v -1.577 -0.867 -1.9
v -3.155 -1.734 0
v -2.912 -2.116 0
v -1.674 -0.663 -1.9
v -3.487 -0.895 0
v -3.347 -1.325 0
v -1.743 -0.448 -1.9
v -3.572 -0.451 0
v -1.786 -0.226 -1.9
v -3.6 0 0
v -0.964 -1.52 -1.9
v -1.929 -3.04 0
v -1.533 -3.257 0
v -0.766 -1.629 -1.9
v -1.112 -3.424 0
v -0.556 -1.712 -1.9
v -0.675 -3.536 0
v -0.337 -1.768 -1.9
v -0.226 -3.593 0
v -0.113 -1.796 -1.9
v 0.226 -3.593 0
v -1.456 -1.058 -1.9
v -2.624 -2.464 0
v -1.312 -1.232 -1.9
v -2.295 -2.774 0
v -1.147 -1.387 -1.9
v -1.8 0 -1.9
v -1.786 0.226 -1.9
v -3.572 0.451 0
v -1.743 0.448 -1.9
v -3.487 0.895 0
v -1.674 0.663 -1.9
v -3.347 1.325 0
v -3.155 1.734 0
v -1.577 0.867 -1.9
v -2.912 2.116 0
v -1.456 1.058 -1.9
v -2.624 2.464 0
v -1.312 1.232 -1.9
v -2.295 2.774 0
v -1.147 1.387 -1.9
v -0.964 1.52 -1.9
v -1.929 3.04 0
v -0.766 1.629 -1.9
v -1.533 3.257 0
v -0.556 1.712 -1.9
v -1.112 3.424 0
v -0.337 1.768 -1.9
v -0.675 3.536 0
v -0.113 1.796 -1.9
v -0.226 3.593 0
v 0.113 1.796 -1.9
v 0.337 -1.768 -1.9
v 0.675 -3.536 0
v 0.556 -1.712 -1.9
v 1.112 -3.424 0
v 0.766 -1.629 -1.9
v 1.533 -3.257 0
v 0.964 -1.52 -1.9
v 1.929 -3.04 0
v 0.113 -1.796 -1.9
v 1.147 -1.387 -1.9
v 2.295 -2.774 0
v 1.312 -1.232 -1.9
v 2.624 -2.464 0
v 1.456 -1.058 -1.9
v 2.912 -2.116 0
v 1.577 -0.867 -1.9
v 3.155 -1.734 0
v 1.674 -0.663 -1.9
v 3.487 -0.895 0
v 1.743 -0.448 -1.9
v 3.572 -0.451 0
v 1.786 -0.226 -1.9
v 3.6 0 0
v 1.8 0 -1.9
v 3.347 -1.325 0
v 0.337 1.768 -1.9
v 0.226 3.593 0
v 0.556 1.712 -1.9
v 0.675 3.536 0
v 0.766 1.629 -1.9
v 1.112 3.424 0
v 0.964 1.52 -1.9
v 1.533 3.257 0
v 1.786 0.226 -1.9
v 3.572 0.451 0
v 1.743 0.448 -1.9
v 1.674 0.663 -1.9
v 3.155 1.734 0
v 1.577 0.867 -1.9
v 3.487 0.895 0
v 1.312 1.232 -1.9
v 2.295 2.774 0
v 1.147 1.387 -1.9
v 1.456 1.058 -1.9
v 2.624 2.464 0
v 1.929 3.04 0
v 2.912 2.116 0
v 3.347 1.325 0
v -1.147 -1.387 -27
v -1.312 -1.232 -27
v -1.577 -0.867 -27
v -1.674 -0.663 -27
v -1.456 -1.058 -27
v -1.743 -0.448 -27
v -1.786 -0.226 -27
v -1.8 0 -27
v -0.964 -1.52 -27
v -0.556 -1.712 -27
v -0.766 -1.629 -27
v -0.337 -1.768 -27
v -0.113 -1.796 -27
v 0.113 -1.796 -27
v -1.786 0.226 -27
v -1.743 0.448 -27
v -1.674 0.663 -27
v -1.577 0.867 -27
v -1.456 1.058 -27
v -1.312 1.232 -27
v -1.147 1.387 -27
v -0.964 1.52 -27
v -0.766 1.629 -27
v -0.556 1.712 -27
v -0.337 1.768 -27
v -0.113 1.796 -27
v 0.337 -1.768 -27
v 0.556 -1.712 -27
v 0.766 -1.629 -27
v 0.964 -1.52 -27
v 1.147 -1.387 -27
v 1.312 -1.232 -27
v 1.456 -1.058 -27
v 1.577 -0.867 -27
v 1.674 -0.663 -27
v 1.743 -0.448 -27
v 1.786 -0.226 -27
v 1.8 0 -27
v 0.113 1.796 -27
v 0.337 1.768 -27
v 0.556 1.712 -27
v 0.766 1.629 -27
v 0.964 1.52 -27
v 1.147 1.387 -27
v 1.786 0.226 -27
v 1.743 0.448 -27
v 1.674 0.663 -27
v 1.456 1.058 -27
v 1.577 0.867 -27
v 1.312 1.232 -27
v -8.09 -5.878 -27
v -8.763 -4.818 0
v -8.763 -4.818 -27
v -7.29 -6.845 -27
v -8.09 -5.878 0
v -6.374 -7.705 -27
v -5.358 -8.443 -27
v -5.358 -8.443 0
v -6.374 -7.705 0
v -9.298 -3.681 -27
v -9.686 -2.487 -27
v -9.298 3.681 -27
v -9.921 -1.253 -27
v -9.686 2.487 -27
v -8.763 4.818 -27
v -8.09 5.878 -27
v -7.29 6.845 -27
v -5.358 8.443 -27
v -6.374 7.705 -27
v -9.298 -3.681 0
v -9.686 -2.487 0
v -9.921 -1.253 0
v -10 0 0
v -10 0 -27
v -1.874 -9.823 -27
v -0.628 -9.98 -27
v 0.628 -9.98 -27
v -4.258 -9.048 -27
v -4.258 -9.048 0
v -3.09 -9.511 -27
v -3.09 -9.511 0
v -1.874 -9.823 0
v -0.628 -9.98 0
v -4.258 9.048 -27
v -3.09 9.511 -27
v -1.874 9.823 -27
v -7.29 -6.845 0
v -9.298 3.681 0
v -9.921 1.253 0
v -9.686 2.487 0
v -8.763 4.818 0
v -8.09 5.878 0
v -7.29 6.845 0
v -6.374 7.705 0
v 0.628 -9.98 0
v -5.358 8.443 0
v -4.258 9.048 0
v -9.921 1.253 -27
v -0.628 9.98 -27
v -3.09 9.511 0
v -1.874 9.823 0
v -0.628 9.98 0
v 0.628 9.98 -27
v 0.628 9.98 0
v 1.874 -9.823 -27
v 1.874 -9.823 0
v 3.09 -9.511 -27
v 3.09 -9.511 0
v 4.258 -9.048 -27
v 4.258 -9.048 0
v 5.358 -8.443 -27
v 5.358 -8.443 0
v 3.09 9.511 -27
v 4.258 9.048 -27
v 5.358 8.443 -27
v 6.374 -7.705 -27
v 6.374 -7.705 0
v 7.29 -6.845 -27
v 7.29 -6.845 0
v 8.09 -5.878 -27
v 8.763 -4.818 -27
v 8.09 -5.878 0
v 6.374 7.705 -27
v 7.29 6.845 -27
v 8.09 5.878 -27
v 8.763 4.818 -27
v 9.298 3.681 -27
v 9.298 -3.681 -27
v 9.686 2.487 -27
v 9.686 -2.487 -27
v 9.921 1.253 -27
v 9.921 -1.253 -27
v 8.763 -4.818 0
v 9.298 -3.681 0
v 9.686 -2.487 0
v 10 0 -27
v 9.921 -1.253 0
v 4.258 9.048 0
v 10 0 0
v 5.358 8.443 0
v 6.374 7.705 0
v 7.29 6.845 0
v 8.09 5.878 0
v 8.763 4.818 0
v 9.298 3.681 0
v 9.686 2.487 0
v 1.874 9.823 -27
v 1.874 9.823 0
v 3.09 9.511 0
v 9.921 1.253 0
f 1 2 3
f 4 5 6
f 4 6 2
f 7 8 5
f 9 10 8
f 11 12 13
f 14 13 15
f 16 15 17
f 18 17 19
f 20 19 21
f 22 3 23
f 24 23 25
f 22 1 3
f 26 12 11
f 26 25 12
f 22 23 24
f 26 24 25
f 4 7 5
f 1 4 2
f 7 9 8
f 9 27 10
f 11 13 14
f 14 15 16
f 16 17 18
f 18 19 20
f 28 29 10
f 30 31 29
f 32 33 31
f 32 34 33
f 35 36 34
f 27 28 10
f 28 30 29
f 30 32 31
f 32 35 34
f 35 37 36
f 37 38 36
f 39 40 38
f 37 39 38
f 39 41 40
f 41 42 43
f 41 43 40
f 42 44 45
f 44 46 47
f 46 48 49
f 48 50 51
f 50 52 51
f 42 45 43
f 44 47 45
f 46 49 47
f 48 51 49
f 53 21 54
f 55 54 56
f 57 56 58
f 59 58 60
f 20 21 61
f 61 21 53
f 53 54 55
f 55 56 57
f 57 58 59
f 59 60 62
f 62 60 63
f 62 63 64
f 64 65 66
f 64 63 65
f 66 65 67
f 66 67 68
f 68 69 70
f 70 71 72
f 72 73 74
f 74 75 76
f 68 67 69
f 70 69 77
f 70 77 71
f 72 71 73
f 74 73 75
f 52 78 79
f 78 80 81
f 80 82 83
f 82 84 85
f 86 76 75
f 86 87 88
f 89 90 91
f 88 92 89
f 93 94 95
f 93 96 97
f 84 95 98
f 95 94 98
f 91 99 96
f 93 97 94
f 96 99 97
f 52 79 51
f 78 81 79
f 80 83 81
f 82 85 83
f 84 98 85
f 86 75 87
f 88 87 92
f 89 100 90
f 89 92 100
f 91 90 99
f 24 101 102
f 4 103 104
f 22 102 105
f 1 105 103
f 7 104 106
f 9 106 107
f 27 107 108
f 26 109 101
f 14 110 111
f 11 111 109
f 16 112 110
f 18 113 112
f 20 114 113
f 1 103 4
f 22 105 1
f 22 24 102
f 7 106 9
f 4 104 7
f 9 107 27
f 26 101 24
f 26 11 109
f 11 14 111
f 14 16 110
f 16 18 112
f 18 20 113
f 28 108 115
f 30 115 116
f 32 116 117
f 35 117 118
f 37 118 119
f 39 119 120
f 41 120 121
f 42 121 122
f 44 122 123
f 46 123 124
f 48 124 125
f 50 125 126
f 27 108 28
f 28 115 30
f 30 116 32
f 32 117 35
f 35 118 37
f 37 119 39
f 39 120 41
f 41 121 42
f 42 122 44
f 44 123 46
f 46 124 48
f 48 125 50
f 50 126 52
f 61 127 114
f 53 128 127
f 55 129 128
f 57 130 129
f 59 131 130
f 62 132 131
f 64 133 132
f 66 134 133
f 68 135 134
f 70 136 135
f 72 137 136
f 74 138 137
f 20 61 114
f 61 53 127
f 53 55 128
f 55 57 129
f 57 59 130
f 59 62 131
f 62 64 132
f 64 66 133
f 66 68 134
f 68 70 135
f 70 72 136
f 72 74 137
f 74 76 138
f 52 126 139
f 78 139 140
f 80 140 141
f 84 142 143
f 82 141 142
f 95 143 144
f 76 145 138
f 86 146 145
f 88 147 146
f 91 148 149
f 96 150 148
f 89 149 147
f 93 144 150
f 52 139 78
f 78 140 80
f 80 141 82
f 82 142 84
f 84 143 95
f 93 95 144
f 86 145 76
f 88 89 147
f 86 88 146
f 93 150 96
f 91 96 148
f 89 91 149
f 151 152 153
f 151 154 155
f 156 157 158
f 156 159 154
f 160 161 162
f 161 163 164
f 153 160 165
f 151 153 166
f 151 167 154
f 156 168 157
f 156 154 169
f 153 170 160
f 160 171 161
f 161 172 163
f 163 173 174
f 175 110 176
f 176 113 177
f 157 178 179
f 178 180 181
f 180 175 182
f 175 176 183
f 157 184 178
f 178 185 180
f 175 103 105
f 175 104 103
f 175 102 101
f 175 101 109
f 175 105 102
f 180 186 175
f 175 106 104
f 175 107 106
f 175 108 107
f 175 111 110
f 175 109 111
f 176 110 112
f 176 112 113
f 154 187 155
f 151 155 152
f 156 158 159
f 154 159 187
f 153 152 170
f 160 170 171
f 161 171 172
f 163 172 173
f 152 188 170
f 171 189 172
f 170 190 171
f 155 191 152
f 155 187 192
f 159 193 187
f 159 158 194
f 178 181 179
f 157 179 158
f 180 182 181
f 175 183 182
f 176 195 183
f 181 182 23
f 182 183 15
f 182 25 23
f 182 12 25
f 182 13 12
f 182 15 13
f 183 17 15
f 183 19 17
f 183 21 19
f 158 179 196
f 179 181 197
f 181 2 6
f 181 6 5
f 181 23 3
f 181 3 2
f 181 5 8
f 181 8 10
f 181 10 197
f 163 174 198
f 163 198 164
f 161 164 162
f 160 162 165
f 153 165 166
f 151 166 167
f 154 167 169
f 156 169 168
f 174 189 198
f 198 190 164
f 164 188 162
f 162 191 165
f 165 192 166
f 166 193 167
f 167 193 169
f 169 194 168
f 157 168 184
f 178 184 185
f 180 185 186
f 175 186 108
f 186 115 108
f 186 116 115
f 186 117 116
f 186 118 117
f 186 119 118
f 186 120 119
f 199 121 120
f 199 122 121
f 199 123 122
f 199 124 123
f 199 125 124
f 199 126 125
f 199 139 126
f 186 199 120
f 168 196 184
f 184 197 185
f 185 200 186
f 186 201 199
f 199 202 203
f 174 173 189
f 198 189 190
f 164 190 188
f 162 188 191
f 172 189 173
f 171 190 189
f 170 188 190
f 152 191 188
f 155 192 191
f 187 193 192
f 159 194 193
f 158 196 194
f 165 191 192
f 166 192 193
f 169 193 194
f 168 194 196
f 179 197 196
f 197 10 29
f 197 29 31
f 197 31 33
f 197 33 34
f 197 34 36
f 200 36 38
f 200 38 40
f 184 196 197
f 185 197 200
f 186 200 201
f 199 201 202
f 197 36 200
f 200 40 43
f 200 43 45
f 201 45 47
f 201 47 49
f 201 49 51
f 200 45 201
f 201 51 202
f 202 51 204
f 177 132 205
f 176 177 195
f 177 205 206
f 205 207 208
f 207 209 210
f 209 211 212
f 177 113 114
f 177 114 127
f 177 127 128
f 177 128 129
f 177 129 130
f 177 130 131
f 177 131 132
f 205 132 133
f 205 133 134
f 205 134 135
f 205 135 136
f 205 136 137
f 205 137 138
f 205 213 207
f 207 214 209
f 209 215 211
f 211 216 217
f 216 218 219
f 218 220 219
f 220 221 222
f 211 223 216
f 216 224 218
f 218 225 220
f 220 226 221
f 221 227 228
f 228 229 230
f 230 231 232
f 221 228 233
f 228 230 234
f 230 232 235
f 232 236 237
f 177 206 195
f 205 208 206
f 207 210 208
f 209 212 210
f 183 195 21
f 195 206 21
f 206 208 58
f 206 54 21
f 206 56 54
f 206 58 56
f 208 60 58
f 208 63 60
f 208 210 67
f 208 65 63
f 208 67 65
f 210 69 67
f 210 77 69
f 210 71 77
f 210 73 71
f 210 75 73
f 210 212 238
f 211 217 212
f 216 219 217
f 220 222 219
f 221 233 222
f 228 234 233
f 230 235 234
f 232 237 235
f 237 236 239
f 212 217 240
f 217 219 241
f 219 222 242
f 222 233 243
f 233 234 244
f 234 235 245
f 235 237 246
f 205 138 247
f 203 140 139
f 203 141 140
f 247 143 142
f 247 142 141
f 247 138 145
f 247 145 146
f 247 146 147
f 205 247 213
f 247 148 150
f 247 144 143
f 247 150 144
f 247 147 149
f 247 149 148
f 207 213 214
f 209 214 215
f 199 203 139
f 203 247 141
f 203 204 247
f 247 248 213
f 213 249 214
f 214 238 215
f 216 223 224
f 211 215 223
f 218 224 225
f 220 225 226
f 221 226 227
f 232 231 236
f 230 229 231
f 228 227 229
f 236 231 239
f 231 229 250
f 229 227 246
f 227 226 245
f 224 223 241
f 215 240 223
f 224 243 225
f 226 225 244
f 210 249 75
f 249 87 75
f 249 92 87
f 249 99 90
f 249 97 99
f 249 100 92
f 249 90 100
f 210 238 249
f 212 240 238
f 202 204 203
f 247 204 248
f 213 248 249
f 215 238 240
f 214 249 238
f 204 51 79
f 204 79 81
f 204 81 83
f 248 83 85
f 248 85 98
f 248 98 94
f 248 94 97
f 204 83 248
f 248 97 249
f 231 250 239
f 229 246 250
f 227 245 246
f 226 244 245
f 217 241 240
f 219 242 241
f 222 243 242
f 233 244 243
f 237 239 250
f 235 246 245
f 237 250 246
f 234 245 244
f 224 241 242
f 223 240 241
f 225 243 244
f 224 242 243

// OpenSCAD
$fn = 50;

difference() {
	union() {
		translate(v = [0, 0, -27.0]) {
			cylinder(h = 27, r = 10.0);
		}
	}
	union() {
		translate(v = [0, 0, 0]) {
			rotate(a = [0, 0, 0]) {
				difference() {
					union() {
						translate(v = [0, 0, -30.0]) {
							cylinder(h = 30, r = 1.5);
						}
						translate(v = [0, 0, -1.9]) {
							cylinder(h = 1.9, r1 = 1.8, r2 = 3.6);
						}
						translate(v = [0, 0, -30.0]) {
							cylinder(h = 30, r = 1.8);
						}
						translate(v = [0, 0, -30.0]) {
							cylinder(h = 30, r = 1.5);
						}
					}
					union();
				}
			}
		}
	}
}
